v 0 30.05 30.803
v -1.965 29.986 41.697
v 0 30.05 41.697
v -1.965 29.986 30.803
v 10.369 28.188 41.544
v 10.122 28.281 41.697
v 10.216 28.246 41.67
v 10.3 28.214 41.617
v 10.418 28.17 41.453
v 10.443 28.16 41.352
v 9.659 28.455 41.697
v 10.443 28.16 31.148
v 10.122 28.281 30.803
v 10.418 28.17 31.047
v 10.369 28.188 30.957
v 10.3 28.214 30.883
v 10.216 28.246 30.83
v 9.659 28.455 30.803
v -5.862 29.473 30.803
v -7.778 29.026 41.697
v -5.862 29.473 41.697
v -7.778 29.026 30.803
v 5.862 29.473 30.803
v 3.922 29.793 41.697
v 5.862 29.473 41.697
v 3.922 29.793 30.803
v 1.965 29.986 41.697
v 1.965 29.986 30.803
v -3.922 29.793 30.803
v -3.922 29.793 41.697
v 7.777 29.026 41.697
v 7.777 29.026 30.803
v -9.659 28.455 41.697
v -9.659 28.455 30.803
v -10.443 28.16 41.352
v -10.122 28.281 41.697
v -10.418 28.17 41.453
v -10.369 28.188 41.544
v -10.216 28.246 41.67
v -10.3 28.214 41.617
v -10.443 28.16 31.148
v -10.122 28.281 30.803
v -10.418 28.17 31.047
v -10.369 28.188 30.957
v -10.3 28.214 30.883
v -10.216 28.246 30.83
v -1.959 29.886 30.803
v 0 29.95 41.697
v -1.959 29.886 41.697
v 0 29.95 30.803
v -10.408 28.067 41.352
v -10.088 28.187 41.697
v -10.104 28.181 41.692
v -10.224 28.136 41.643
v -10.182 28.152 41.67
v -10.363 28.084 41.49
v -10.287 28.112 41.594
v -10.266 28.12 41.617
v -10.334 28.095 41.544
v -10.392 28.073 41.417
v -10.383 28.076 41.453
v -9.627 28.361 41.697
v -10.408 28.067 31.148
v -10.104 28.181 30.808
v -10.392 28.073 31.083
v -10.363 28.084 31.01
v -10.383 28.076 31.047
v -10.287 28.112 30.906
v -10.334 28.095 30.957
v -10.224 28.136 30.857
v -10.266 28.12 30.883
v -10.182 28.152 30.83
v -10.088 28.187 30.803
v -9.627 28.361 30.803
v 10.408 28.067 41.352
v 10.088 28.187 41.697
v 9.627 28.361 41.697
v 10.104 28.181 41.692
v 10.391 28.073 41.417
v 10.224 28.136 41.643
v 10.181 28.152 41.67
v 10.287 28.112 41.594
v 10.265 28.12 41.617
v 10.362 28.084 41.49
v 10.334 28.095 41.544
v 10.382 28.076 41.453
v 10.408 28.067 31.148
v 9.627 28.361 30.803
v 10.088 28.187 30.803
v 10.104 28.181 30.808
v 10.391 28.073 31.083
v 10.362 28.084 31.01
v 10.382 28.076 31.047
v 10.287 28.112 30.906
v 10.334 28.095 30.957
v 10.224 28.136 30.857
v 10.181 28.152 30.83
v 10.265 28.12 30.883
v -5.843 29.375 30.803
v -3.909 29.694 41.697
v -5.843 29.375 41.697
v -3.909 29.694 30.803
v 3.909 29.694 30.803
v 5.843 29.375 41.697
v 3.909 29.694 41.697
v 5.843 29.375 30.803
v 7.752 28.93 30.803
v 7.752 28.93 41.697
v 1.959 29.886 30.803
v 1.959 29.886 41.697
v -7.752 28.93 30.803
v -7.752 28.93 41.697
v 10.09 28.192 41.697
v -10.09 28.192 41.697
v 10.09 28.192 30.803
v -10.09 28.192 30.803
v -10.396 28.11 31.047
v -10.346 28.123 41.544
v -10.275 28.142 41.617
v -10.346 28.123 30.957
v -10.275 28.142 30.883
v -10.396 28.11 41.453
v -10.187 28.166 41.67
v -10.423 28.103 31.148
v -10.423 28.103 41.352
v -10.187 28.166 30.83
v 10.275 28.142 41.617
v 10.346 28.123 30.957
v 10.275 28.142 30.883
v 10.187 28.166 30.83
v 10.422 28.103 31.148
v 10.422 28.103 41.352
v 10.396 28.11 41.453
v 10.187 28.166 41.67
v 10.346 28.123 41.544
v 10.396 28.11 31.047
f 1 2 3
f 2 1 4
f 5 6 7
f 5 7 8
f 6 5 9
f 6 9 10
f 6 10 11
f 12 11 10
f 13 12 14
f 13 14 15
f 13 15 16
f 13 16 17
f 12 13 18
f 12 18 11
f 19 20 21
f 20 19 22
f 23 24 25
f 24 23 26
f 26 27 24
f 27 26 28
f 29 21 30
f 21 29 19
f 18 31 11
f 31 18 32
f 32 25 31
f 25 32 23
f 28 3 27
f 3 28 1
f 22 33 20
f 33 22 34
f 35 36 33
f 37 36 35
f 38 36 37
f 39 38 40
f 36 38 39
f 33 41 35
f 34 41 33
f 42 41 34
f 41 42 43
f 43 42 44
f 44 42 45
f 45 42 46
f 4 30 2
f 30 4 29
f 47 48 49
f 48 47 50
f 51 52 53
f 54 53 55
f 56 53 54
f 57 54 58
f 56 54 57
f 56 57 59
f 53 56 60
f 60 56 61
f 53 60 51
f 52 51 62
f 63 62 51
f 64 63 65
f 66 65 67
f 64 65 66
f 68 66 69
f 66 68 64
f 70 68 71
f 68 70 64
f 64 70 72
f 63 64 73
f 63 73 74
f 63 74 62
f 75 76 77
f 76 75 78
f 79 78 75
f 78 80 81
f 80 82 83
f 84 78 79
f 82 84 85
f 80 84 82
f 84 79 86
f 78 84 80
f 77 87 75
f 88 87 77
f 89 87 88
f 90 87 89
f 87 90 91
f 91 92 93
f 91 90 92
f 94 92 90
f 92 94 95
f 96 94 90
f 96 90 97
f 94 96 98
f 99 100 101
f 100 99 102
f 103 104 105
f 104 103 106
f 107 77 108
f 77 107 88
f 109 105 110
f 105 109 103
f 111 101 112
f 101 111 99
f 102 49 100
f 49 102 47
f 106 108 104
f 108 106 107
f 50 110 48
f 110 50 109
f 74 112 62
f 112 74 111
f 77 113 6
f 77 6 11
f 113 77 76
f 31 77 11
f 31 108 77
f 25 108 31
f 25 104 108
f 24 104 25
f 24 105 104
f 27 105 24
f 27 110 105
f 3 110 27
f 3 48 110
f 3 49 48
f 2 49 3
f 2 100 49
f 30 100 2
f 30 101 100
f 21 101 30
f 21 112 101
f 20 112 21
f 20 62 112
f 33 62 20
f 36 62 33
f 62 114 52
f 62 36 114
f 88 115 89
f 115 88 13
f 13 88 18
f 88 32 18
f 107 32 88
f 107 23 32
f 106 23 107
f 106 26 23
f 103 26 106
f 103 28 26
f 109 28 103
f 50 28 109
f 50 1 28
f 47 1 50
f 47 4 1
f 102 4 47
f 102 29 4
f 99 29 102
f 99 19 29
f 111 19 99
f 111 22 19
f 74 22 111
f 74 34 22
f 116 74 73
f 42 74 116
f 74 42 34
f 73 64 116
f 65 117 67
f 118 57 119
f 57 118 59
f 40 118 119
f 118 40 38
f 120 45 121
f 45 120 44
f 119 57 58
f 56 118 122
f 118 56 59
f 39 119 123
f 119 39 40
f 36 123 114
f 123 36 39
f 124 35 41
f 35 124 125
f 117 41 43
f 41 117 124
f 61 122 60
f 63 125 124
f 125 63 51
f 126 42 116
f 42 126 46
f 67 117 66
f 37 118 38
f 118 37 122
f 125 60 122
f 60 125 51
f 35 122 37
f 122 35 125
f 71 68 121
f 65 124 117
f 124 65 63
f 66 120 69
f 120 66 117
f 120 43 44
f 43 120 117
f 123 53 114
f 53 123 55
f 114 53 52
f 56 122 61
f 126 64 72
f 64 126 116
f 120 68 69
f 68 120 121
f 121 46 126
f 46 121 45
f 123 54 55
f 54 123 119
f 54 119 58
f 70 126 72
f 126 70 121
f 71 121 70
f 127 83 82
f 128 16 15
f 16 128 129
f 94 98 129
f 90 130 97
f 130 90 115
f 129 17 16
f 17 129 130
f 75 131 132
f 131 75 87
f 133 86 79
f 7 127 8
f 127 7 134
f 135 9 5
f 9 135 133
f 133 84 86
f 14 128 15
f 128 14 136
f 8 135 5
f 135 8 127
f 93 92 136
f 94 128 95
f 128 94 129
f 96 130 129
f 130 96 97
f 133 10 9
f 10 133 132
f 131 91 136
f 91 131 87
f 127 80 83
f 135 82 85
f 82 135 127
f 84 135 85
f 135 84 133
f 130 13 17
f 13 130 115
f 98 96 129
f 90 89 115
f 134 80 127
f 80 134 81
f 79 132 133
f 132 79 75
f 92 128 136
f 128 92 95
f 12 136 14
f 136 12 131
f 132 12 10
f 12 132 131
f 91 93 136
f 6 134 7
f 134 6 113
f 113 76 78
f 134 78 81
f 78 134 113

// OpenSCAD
// file: def.scad
round_radius = 0.6;
sticker_margin = 1.2;
sticker_round_radius = 0.4;
cube_size = 60;
disk_height = 12.5;
disk_radius = cube_size / 2;
base_size = cube_size / 2 / sqrt(10 + 7 * sqrt(2));
cut1_dis = base_size * (1 + sqrt(2) / 2);
cut2_dis = cube_size / 2;
inf = cube_size * 10;

module _cube() {
    cube([cube_size - round_radius * 2, cube_size - round_radius * 2, cube_size - round_radius * 2], center = true);
}

module _disk() {
    translate([0, 0, cube_size / 2 + disk_height / 2])
        cylinder(r = disk_radius - round_radius, h = disk_height - round_radius * 2, center = true, $fn = 96);
}

module _int_cut1() {
    translate([-inf, -inf, cut1_dis + round_radius])
        cube([inf * 2, inf * 2, inf]);
}

module _dif_cut1() {
    translate([-inf, -inf, cut1_dis - round_radius])
        cube([inf * 2, inf * 2, inf]);
}

module _sticker_int_cut1() {
    translate([-inf, -inf, cut1_dis + sticker_margin])
        cube([inf * 2, inf * 2, inf]);
}

module _sticker_dif_cut1() {
    translate([-inf, -inf, cut1_dis - sticker_margin])
        cube([inf * 2, inf * 2, inf]);
}

module _int_cut2() {
    translate([-inf, -inf, cut2_dis + round_radius])
        cube([inf * 2, inf * 2, inf]);
}

module _dif_cut2() {
    translate([-inf, -inf, cut2_dis - round_radius])
        cube([inf * 2, inf * 2, inf]);
}

module _sticker_int_cut2() {
    translate([-inf, -inf, cut2_dis + sticker_margin])
        cube([inf * 2, inf * 2, inf]);
}

module _sticker_dif_cut2() {
    translate([-inf, -inf, cut2_dis - sticker_margin])
        cube([inf * 2, inf * 2, inf]);
}

module _sticker_cube() {
    translate([-cube_size / 2 + sticker_margin, -cube_size / 2 + sticker_margin, cube_size / 2 - 0.05])
        cube([cube_size - sticker_margin * 2, cube_size - sticker_margin * 2, 0.1]);
}

module _sticker_disk() {
    translate([0, 0, cube_size / 2 + disk_height - 0.05])
        cylinder(r = disk_radius - sticker_margin, h = 0.1, center = true, $fn = 96);
}
// main file
include <def.scad>

module _tube() {
    difference() {
        cylinder(r = disk_radius + 0.05, h = inf, center = true, $fn = 96);
        cylinder(r = disk_radius - 0.05, h = inf * 2, center = true, $fn = 96);
    }
}

theta = 22.5;
alpha = 90 - theta - acos((disk_radius * sin(theta) + round_radius) / (disk_radius - round_radius));
cut_deg = alpha + (sticker_margin - round_radius) / disk_radius / 3.141592654 * 180;

module sticker_21() {
    intersection() {
        minkowski() {
            difference() {
                intersection() {
                    translate([0, 0, cube_size / 2 + disk_height / 2])
                        cylinder(r = inf, h = disk_height - sticker_margin * 2, center = true, $fn = 96);
                    _tube();
                }
                for (deg = [112.5 - cut_deg, -112.5 + cut_deg])
                    rotate([-90, 0, deg])
                        translate([-inf, -inf, 0])
                            cube([inf * 2, inf * 2, inf]);
            }
            sphere(r = sticker_round_radius, $fn = 24);
        }
        _tube();
    }
}

sticker_21();
